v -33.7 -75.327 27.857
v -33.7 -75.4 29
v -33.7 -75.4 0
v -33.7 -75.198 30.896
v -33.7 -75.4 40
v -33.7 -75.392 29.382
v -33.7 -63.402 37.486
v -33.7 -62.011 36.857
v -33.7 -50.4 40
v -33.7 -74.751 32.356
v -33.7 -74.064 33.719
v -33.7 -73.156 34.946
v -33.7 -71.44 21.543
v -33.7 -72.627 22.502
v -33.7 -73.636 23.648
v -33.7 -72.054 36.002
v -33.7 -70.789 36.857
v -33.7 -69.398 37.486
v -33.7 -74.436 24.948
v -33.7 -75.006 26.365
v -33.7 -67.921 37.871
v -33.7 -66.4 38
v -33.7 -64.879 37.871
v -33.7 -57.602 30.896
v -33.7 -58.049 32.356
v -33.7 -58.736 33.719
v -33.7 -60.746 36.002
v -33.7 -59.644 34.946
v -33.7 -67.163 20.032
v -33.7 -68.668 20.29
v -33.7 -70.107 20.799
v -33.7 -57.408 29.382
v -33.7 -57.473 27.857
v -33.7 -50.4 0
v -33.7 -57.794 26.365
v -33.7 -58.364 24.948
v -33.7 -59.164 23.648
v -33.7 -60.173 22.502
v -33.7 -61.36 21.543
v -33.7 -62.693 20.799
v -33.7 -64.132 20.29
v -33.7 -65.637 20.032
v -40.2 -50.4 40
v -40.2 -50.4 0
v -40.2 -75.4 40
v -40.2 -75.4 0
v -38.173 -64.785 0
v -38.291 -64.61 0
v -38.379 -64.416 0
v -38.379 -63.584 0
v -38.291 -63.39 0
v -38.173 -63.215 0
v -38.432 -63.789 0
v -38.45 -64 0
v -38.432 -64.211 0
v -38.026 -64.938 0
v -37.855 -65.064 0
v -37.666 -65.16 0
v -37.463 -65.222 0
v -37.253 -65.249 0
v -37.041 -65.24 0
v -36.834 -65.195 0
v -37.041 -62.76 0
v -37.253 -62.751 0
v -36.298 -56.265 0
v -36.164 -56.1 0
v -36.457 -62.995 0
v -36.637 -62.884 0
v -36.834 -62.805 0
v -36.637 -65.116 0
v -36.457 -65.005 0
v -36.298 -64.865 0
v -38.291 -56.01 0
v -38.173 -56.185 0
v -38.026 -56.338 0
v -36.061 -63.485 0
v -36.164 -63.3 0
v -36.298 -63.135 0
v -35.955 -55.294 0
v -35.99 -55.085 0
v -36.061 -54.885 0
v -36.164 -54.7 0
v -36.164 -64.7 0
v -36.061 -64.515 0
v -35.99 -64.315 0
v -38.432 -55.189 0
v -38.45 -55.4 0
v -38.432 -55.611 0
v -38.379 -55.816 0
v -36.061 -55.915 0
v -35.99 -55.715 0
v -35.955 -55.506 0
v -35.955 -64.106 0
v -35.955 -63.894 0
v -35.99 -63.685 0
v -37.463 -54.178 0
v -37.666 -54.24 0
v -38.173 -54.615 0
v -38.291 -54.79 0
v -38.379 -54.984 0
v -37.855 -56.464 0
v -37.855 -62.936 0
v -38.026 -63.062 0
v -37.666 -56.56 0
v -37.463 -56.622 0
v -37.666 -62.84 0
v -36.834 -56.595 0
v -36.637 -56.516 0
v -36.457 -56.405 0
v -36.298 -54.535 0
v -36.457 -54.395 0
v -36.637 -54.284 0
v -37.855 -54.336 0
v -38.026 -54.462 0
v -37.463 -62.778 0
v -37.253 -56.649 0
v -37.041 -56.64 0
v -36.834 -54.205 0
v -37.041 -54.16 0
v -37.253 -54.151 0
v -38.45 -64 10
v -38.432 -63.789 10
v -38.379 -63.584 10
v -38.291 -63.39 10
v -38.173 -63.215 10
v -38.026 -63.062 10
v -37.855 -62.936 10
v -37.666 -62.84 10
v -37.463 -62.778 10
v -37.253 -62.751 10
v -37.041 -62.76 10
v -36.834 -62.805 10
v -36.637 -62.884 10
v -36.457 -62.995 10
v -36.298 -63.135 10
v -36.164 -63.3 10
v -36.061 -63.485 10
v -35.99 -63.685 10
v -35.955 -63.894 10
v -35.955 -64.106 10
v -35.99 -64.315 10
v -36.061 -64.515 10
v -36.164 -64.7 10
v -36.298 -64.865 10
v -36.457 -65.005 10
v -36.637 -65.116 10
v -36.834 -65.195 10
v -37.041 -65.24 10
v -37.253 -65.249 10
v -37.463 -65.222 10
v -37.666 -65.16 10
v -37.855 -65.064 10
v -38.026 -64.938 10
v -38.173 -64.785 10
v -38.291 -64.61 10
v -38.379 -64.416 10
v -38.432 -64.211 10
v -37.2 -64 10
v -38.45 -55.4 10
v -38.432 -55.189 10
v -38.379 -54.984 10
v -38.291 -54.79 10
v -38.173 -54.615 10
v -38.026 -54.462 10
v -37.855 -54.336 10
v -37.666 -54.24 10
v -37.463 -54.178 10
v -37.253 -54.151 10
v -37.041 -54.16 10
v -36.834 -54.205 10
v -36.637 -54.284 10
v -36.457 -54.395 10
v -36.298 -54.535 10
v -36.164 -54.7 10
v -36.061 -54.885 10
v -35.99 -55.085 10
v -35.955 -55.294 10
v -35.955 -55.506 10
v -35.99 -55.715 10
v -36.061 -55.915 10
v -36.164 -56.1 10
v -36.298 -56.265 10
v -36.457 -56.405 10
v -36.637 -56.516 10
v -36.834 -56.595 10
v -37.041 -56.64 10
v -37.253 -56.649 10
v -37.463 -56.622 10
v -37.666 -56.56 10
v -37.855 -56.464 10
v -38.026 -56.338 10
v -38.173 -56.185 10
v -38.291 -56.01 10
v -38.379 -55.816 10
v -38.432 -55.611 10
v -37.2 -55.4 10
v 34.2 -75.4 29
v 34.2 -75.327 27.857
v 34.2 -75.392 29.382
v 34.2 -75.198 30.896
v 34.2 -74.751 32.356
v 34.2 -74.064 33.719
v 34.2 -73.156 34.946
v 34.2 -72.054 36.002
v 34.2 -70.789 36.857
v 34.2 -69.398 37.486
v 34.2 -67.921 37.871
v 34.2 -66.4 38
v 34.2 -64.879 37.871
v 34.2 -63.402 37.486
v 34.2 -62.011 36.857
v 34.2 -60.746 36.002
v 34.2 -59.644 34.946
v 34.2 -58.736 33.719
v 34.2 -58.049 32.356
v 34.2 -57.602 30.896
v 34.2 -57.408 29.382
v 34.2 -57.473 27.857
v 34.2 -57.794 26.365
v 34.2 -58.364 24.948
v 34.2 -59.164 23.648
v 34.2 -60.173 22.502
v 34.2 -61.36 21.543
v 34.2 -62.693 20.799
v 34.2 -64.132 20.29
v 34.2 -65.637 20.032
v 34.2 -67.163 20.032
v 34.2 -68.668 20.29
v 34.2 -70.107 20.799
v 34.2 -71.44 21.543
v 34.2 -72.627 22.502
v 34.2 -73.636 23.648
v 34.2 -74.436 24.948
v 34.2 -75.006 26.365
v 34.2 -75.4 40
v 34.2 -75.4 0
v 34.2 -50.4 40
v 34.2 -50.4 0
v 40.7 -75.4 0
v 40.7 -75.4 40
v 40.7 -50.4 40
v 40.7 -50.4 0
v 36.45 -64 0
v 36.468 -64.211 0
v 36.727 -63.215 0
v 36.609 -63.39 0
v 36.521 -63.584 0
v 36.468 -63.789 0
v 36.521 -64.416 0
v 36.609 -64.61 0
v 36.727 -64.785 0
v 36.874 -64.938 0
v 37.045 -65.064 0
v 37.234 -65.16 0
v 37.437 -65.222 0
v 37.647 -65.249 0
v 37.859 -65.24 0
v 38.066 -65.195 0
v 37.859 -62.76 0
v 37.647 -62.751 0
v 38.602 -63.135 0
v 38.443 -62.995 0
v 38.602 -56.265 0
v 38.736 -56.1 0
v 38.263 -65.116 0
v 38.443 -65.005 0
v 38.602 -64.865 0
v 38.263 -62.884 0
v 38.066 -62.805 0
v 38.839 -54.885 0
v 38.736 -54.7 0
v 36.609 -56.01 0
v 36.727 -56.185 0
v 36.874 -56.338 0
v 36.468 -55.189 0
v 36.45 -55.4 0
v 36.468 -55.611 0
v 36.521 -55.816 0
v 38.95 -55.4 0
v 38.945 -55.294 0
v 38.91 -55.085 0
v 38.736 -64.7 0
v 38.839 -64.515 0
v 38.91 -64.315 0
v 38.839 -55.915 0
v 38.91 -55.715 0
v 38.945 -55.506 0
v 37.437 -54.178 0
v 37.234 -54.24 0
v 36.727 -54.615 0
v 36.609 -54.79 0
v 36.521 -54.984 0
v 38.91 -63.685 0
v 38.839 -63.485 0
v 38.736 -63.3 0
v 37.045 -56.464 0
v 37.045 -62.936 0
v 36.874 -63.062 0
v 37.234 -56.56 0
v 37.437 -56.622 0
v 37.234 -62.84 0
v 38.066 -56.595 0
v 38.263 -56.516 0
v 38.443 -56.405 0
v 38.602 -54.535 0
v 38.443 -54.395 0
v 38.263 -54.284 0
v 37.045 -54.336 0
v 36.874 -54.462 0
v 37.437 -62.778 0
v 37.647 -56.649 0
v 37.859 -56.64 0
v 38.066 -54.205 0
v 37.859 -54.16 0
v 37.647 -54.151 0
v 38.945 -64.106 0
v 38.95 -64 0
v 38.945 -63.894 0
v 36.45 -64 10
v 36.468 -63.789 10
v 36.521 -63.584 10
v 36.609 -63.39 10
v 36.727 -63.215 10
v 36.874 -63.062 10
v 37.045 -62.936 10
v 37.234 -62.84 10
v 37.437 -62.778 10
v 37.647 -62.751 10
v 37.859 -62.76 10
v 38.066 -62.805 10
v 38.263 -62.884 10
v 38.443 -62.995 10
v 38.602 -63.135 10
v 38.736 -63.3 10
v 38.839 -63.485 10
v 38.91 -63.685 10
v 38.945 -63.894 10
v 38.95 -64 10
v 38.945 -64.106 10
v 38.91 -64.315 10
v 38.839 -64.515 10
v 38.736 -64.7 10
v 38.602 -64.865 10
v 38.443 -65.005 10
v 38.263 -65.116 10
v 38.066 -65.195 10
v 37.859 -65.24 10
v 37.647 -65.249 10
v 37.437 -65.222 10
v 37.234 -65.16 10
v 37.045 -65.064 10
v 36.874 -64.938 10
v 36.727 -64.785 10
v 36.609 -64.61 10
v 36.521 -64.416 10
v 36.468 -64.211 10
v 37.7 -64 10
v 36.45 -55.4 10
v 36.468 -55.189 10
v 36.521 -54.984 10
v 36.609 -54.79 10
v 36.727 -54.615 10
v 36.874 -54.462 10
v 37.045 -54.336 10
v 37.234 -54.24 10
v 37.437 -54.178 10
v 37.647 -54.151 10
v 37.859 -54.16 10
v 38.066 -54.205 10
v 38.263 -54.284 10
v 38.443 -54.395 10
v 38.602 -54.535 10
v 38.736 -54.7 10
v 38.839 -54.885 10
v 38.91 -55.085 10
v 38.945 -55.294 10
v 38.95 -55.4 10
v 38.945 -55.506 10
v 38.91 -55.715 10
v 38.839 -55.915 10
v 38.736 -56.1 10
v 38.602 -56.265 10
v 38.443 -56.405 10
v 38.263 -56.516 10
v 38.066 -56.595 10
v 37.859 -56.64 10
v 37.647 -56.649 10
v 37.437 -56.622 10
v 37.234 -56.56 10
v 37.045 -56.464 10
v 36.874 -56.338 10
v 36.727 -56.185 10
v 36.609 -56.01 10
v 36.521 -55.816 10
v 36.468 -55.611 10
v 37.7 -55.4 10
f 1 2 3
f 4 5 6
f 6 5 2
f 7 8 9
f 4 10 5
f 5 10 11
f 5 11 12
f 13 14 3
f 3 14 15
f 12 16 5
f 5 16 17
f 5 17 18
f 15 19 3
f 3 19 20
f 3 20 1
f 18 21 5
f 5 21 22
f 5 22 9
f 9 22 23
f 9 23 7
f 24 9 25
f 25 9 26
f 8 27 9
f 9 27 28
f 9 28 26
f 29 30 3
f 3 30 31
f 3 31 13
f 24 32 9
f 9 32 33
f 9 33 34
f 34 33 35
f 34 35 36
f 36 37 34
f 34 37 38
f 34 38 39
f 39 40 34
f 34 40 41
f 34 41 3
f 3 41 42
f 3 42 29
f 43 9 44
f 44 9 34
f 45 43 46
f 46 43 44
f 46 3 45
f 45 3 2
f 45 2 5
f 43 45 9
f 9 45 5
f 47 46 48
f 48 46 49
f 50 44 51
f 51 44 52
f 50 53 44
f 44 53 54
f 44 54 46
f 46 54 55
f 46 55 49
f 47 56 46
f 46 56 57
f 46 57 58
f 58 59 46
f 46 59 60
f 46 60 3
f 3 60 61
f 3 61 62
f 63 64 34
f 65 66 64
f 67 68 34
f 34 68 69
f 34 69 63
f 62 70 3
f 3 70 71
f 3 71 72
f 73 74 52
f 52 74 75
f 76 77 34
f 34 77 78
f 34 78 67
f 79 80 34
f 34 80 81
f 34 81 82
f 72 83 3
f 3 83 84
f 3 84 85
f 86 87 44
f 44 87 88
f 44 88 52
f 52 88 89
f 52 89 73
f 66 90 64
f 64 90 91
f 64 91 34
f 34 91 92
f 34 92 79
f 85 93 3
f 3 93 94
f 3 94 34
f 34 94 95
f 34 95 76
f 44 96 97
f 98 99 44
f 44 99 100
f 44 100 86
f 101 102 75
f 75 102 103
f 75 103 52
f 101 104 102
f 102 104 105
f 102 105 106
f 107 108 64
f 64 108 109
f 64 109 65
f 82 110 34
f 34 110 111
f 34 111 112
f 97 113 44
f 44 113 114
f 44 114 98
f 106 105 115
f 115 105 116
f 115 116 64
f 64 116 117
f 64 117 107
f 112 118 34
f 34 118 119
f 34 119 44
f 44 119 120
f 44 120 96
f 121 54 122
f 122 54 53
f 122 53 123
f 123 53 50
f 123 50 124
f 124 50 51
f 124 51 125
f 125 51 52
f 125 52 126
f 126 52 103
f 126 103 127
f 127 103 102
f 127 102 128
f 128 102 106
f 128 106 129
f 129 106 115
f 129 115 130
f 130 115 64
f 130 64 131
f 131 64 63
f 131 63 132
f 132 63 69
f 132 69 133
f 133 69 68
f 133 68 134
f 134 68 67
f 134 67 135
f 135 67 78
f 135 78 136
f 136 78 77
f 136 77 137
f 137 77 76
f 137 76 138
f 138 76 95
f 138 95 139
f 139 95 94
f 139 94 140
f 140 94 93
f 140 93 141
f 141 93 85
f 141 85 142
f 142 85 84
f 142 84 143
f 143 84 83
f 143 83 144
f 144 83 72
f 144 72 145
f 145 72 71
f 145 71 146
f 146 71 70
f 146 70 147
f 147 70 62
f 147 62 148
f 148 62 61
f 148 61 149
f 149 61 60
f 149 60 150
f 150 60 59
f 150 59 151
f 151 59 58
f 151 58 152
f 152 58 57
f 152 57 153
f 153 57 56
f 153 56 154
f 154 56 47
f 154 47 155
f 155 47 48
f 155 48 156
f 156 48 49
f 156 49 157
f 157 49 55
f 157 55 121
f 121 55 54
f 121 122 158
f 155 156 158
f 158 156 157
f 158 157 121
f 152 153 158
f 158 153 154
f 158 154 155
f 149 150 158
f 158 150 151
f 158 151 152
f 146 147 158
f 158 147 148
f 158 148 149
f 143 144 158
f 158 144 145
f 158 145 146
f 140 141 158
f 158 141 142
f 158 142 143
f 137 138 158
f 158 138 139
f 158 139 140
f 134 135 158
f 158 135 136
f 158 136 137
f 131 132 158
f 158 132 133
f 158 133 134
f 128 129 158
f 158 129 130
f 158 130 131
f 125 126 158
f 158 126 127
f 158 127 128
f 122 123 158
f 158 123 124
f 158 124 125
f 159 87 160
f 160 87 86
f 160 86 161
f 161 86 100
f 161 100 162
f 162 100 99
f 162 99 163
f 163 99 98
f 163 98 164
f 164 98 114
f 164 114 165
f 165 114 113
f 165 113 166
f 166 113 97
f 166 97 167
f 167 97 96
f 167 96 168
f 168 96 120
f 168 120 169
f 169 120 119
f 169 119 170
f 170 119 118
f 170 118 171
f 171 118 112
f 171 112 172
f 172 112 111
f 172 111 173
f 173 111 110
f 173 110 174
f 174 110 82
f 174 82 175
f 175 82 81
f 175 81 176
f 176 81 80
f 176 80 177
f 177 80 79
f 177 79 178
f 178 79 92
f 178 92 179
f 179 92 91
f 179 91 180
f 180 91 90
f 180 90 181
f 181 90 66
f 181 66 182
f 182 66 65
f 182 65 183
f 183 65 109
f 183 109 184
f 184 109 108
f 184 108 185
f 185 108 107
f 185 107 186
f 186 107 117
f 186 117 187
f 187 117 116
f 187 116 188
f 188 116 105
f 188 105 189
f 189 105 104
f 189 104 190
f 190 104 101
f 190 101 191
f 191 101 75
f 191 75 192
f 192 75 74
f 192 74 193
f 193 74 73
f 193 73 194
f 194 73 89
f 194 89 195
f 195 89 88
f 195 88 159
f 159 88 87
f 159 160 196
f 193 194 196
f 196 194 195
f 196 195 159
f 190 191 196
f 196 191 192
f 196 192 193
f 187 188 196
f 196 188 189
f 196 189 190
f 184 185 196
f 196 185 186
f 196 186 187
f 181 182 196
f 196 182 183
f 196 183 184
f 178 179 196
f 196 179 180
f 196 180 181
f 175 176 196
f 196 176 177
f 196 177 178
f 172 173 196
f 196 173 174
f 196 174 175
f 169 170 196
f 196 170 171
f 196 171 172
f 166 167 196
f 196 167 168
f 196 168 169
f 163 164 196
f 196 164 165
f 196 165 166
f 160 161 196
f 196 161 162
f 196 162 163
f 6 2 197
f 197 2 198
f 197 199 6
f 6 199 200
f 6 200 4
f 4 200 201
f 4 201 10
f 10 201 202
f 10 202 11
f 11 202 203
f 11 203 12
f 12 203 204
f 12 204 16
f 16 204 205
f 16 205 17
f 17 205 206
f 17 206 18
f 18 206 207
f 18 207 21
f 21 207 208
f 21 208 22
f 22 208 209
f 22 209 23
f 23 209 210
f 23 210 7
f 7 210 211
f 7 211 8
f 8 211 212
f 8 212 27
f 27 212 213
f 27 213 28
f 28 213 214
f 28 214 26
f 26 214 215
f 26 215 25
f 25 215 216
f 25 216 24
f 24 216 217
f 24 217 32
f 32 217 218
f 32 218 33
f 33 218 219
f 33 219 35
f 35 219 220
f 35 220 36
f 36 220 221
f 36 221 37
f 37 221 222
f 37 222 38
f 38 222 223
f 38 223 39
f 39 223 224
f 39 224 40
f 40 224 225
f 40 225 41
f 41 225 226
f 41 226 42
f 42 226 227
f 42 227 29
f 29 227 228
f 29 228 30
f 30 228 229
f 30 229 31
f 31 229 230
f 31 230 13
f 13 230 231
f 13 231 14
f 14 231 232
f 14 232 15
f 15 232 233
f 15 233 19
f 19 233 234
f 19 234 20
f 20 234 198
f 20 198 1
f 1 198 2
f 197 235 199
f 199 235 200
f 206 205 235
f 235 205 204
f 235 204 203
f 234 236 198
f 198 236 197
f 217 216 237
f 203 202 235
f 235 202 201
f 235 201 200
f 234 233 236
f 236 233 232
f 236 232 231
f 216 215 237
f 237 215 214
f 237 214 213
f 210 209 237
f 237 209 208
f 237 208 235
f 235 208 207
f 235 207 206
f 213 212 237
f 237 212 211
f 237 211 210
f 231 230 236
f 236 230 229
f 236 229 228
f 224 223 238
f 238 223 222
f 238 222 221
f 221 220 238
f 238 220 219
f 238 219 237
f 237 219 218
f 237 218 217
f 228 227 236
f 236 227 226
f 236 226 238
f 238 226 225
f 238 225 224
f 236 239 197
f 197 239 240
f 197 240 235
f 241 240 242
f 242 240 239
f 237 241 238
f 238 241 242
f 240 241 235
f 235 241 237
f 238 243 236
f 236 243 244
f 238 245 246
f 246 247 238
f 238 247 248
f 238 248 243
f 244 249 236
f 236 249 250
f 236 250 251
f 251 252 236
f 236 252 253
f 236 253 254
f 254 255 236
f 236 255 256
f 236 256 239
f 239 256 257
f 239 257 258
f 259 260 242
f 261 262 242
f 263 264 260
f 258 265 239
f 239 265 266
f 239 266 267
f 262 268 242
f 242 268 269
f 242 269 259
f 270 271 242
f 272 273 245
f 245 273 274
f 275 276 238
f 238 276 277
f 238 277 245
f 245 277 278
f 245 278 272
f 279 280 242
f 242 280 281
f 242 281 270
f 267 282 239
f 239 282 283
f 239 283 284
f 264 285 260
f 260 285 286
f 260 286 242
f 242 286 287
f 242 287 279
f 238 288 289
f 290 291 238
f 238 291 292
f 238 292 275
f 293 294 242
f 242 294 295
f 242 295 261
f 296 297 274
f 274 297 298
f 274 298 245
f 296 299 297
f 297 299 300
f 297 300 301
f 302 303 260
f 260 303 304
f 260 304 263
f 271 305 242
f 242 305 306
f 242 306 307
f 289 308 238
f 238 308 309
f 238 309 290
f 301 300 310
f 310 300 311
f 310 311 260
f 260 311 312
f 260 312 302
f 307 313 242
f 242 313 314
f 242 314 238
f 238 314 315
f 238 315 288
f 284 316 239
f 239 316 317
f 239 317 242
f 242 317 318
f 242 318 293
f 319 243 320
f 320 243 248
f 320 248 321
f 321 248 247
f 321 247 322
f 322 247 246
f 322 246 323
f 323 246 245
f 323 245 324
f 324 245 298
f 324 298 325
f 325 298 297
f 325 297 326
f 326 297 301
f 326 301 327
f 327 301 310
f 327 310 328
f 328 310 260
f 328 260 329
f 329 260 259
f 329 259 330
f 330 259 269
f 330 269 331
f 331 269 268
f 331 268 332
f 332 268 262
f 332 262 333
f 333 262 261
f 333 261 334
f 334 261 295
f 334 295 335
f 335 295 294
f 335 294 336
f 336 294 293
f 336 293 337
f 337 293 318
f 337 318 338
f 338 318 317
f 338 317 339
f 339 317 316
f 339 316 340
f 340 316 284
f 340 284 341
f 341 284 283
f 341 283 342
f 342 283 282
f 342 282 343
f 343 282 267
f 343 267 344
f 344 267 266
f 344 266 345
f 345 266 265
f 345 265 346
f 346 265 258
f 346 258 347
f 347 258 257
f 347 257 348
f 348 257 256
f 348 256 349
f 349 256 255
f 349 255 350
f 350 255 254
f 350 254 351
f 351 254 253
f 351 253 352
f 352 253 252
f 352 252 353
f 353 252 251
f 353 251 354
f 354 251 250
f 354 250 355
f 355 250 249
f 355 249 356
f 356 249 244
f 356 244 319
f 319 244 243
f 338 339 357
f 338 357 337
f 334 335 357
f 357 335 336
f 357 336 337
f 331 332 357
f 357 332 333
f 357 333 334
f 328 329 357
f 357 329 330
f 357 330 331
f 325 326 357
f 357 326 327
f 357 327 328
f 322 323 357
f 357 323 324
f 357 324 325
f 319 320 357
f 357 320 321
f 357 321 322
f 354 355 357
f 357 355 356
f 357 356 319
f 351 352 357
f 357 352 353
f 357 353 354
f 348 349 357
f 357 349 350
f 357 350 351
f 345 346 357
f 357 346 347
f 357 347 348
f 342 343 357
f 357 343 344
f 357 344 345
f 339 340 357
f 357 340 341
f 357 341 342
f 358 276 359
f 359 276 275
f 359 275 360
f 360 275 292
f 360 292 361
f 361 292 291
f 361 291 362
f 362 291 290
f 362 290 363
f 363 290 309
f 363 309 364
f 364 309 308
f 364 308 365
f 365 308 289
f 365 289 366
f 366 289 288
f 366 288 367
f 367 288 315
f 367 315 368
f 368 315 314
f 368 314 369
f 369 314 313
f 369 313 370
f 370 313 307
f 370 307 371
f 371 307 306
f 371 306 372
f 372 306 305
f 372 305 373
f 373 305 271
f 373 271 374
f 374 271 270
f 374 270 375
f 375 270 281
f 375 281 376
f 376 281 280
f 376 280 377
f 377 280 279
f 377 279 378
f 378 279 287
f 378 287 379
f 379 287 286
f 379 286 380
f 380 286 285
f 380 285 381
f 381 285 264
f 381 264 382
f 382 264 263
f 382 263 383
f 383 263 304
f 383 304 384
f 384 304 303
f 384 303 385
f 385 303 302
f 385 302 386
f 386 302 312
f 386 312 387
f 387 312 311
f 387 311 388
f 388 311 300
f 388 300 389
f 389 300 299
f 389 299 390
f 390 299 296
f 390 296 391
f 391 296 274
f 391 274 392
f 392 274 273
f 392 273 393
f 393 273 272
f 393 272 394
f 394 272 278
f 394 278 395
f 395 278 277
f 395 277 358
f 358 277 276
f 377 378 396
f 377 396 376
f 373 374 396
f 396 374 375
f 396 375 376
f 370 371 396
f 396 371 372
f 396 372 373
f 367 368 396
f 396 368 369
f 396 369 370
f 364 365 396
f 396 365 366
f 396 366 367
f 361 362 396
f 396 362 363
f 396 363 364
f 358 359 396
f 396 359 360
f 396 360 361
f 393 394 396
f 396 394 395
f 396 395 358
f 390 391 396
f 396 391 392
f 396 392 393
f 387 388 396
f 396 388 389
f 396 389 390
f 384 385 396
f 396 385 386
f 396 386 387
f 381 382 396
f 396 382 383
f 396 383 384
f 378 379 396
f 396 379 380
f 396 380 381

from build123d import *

# Parameters (mm, degrees)
SKETCH1_W           = 6.5
SKETCH1_H           = 25
BOSS_EXTRUDE1_DEPTH = 40
SKETCH2_R           = 1.25
CUT_EXTRUDE1_DEPTH  = 10
SKETCH3_R           = 9
BOSS_EXTRUDE2_DEPTH = 67.9


with BuildPart() as part:
    # Sketch1 → Boss-Extrude1 (new body)
    with BuildSketch(Plane.XY):
        with Locations((-36.95, -62.9)):
            Rectangle(SKETCH1_W, SKETCH1_H)
    boss_extrude1 = extrude(amount=BOSS_EXTRUDE1_DEPTH)

    # Sketch2 → Cut-Extrude1 (cut)
    with BuildSketch(Plane(origin=(0, 0, 0), x_dir=(-1, 0, 0), z_dir=(0, 0, -1))):
        with Locations((37.2, -55.4)):
            Circle(SKETCH2_R)
        with Locations((37.2, -64)):
            Circle(SKETCH2_R)
    cut_extrude1 = extrude(amount=-CUT_EXTRUDE1_DEPTH, mode=Mode.SUBTRACT)

    # Sketch3 → Boss-Extrude2 (add)
    with BuildSketch(Plane(origin=(-33.7, 0, 0), x_dir=(0, 0, -1), z_dir=(1, 0, 0))):
        with Locations(Location((-29, -66.4, 0), (0, 0, 180))):
            Circle(SKETCH3_R)
    extrude(amount=BOSS_EXTRUDE2_DEPTH)

    # Mirror1: Boss-Extrude1, Cut-Extrude1 across plane
    add(boss_extrude1.mirror(Plane(origin=(0.25, 0, 0), x_dir=(0, 0, 1), z_dir=(1, 0, 0))))
    add(cut_extrude1.mirror(Plane(origin=(0.25, 0, 0), x_dir=(0, 0, 1), z_dir=(1, 0, 0))), mode=Mode.SUBTRACT)


solid = part.part
